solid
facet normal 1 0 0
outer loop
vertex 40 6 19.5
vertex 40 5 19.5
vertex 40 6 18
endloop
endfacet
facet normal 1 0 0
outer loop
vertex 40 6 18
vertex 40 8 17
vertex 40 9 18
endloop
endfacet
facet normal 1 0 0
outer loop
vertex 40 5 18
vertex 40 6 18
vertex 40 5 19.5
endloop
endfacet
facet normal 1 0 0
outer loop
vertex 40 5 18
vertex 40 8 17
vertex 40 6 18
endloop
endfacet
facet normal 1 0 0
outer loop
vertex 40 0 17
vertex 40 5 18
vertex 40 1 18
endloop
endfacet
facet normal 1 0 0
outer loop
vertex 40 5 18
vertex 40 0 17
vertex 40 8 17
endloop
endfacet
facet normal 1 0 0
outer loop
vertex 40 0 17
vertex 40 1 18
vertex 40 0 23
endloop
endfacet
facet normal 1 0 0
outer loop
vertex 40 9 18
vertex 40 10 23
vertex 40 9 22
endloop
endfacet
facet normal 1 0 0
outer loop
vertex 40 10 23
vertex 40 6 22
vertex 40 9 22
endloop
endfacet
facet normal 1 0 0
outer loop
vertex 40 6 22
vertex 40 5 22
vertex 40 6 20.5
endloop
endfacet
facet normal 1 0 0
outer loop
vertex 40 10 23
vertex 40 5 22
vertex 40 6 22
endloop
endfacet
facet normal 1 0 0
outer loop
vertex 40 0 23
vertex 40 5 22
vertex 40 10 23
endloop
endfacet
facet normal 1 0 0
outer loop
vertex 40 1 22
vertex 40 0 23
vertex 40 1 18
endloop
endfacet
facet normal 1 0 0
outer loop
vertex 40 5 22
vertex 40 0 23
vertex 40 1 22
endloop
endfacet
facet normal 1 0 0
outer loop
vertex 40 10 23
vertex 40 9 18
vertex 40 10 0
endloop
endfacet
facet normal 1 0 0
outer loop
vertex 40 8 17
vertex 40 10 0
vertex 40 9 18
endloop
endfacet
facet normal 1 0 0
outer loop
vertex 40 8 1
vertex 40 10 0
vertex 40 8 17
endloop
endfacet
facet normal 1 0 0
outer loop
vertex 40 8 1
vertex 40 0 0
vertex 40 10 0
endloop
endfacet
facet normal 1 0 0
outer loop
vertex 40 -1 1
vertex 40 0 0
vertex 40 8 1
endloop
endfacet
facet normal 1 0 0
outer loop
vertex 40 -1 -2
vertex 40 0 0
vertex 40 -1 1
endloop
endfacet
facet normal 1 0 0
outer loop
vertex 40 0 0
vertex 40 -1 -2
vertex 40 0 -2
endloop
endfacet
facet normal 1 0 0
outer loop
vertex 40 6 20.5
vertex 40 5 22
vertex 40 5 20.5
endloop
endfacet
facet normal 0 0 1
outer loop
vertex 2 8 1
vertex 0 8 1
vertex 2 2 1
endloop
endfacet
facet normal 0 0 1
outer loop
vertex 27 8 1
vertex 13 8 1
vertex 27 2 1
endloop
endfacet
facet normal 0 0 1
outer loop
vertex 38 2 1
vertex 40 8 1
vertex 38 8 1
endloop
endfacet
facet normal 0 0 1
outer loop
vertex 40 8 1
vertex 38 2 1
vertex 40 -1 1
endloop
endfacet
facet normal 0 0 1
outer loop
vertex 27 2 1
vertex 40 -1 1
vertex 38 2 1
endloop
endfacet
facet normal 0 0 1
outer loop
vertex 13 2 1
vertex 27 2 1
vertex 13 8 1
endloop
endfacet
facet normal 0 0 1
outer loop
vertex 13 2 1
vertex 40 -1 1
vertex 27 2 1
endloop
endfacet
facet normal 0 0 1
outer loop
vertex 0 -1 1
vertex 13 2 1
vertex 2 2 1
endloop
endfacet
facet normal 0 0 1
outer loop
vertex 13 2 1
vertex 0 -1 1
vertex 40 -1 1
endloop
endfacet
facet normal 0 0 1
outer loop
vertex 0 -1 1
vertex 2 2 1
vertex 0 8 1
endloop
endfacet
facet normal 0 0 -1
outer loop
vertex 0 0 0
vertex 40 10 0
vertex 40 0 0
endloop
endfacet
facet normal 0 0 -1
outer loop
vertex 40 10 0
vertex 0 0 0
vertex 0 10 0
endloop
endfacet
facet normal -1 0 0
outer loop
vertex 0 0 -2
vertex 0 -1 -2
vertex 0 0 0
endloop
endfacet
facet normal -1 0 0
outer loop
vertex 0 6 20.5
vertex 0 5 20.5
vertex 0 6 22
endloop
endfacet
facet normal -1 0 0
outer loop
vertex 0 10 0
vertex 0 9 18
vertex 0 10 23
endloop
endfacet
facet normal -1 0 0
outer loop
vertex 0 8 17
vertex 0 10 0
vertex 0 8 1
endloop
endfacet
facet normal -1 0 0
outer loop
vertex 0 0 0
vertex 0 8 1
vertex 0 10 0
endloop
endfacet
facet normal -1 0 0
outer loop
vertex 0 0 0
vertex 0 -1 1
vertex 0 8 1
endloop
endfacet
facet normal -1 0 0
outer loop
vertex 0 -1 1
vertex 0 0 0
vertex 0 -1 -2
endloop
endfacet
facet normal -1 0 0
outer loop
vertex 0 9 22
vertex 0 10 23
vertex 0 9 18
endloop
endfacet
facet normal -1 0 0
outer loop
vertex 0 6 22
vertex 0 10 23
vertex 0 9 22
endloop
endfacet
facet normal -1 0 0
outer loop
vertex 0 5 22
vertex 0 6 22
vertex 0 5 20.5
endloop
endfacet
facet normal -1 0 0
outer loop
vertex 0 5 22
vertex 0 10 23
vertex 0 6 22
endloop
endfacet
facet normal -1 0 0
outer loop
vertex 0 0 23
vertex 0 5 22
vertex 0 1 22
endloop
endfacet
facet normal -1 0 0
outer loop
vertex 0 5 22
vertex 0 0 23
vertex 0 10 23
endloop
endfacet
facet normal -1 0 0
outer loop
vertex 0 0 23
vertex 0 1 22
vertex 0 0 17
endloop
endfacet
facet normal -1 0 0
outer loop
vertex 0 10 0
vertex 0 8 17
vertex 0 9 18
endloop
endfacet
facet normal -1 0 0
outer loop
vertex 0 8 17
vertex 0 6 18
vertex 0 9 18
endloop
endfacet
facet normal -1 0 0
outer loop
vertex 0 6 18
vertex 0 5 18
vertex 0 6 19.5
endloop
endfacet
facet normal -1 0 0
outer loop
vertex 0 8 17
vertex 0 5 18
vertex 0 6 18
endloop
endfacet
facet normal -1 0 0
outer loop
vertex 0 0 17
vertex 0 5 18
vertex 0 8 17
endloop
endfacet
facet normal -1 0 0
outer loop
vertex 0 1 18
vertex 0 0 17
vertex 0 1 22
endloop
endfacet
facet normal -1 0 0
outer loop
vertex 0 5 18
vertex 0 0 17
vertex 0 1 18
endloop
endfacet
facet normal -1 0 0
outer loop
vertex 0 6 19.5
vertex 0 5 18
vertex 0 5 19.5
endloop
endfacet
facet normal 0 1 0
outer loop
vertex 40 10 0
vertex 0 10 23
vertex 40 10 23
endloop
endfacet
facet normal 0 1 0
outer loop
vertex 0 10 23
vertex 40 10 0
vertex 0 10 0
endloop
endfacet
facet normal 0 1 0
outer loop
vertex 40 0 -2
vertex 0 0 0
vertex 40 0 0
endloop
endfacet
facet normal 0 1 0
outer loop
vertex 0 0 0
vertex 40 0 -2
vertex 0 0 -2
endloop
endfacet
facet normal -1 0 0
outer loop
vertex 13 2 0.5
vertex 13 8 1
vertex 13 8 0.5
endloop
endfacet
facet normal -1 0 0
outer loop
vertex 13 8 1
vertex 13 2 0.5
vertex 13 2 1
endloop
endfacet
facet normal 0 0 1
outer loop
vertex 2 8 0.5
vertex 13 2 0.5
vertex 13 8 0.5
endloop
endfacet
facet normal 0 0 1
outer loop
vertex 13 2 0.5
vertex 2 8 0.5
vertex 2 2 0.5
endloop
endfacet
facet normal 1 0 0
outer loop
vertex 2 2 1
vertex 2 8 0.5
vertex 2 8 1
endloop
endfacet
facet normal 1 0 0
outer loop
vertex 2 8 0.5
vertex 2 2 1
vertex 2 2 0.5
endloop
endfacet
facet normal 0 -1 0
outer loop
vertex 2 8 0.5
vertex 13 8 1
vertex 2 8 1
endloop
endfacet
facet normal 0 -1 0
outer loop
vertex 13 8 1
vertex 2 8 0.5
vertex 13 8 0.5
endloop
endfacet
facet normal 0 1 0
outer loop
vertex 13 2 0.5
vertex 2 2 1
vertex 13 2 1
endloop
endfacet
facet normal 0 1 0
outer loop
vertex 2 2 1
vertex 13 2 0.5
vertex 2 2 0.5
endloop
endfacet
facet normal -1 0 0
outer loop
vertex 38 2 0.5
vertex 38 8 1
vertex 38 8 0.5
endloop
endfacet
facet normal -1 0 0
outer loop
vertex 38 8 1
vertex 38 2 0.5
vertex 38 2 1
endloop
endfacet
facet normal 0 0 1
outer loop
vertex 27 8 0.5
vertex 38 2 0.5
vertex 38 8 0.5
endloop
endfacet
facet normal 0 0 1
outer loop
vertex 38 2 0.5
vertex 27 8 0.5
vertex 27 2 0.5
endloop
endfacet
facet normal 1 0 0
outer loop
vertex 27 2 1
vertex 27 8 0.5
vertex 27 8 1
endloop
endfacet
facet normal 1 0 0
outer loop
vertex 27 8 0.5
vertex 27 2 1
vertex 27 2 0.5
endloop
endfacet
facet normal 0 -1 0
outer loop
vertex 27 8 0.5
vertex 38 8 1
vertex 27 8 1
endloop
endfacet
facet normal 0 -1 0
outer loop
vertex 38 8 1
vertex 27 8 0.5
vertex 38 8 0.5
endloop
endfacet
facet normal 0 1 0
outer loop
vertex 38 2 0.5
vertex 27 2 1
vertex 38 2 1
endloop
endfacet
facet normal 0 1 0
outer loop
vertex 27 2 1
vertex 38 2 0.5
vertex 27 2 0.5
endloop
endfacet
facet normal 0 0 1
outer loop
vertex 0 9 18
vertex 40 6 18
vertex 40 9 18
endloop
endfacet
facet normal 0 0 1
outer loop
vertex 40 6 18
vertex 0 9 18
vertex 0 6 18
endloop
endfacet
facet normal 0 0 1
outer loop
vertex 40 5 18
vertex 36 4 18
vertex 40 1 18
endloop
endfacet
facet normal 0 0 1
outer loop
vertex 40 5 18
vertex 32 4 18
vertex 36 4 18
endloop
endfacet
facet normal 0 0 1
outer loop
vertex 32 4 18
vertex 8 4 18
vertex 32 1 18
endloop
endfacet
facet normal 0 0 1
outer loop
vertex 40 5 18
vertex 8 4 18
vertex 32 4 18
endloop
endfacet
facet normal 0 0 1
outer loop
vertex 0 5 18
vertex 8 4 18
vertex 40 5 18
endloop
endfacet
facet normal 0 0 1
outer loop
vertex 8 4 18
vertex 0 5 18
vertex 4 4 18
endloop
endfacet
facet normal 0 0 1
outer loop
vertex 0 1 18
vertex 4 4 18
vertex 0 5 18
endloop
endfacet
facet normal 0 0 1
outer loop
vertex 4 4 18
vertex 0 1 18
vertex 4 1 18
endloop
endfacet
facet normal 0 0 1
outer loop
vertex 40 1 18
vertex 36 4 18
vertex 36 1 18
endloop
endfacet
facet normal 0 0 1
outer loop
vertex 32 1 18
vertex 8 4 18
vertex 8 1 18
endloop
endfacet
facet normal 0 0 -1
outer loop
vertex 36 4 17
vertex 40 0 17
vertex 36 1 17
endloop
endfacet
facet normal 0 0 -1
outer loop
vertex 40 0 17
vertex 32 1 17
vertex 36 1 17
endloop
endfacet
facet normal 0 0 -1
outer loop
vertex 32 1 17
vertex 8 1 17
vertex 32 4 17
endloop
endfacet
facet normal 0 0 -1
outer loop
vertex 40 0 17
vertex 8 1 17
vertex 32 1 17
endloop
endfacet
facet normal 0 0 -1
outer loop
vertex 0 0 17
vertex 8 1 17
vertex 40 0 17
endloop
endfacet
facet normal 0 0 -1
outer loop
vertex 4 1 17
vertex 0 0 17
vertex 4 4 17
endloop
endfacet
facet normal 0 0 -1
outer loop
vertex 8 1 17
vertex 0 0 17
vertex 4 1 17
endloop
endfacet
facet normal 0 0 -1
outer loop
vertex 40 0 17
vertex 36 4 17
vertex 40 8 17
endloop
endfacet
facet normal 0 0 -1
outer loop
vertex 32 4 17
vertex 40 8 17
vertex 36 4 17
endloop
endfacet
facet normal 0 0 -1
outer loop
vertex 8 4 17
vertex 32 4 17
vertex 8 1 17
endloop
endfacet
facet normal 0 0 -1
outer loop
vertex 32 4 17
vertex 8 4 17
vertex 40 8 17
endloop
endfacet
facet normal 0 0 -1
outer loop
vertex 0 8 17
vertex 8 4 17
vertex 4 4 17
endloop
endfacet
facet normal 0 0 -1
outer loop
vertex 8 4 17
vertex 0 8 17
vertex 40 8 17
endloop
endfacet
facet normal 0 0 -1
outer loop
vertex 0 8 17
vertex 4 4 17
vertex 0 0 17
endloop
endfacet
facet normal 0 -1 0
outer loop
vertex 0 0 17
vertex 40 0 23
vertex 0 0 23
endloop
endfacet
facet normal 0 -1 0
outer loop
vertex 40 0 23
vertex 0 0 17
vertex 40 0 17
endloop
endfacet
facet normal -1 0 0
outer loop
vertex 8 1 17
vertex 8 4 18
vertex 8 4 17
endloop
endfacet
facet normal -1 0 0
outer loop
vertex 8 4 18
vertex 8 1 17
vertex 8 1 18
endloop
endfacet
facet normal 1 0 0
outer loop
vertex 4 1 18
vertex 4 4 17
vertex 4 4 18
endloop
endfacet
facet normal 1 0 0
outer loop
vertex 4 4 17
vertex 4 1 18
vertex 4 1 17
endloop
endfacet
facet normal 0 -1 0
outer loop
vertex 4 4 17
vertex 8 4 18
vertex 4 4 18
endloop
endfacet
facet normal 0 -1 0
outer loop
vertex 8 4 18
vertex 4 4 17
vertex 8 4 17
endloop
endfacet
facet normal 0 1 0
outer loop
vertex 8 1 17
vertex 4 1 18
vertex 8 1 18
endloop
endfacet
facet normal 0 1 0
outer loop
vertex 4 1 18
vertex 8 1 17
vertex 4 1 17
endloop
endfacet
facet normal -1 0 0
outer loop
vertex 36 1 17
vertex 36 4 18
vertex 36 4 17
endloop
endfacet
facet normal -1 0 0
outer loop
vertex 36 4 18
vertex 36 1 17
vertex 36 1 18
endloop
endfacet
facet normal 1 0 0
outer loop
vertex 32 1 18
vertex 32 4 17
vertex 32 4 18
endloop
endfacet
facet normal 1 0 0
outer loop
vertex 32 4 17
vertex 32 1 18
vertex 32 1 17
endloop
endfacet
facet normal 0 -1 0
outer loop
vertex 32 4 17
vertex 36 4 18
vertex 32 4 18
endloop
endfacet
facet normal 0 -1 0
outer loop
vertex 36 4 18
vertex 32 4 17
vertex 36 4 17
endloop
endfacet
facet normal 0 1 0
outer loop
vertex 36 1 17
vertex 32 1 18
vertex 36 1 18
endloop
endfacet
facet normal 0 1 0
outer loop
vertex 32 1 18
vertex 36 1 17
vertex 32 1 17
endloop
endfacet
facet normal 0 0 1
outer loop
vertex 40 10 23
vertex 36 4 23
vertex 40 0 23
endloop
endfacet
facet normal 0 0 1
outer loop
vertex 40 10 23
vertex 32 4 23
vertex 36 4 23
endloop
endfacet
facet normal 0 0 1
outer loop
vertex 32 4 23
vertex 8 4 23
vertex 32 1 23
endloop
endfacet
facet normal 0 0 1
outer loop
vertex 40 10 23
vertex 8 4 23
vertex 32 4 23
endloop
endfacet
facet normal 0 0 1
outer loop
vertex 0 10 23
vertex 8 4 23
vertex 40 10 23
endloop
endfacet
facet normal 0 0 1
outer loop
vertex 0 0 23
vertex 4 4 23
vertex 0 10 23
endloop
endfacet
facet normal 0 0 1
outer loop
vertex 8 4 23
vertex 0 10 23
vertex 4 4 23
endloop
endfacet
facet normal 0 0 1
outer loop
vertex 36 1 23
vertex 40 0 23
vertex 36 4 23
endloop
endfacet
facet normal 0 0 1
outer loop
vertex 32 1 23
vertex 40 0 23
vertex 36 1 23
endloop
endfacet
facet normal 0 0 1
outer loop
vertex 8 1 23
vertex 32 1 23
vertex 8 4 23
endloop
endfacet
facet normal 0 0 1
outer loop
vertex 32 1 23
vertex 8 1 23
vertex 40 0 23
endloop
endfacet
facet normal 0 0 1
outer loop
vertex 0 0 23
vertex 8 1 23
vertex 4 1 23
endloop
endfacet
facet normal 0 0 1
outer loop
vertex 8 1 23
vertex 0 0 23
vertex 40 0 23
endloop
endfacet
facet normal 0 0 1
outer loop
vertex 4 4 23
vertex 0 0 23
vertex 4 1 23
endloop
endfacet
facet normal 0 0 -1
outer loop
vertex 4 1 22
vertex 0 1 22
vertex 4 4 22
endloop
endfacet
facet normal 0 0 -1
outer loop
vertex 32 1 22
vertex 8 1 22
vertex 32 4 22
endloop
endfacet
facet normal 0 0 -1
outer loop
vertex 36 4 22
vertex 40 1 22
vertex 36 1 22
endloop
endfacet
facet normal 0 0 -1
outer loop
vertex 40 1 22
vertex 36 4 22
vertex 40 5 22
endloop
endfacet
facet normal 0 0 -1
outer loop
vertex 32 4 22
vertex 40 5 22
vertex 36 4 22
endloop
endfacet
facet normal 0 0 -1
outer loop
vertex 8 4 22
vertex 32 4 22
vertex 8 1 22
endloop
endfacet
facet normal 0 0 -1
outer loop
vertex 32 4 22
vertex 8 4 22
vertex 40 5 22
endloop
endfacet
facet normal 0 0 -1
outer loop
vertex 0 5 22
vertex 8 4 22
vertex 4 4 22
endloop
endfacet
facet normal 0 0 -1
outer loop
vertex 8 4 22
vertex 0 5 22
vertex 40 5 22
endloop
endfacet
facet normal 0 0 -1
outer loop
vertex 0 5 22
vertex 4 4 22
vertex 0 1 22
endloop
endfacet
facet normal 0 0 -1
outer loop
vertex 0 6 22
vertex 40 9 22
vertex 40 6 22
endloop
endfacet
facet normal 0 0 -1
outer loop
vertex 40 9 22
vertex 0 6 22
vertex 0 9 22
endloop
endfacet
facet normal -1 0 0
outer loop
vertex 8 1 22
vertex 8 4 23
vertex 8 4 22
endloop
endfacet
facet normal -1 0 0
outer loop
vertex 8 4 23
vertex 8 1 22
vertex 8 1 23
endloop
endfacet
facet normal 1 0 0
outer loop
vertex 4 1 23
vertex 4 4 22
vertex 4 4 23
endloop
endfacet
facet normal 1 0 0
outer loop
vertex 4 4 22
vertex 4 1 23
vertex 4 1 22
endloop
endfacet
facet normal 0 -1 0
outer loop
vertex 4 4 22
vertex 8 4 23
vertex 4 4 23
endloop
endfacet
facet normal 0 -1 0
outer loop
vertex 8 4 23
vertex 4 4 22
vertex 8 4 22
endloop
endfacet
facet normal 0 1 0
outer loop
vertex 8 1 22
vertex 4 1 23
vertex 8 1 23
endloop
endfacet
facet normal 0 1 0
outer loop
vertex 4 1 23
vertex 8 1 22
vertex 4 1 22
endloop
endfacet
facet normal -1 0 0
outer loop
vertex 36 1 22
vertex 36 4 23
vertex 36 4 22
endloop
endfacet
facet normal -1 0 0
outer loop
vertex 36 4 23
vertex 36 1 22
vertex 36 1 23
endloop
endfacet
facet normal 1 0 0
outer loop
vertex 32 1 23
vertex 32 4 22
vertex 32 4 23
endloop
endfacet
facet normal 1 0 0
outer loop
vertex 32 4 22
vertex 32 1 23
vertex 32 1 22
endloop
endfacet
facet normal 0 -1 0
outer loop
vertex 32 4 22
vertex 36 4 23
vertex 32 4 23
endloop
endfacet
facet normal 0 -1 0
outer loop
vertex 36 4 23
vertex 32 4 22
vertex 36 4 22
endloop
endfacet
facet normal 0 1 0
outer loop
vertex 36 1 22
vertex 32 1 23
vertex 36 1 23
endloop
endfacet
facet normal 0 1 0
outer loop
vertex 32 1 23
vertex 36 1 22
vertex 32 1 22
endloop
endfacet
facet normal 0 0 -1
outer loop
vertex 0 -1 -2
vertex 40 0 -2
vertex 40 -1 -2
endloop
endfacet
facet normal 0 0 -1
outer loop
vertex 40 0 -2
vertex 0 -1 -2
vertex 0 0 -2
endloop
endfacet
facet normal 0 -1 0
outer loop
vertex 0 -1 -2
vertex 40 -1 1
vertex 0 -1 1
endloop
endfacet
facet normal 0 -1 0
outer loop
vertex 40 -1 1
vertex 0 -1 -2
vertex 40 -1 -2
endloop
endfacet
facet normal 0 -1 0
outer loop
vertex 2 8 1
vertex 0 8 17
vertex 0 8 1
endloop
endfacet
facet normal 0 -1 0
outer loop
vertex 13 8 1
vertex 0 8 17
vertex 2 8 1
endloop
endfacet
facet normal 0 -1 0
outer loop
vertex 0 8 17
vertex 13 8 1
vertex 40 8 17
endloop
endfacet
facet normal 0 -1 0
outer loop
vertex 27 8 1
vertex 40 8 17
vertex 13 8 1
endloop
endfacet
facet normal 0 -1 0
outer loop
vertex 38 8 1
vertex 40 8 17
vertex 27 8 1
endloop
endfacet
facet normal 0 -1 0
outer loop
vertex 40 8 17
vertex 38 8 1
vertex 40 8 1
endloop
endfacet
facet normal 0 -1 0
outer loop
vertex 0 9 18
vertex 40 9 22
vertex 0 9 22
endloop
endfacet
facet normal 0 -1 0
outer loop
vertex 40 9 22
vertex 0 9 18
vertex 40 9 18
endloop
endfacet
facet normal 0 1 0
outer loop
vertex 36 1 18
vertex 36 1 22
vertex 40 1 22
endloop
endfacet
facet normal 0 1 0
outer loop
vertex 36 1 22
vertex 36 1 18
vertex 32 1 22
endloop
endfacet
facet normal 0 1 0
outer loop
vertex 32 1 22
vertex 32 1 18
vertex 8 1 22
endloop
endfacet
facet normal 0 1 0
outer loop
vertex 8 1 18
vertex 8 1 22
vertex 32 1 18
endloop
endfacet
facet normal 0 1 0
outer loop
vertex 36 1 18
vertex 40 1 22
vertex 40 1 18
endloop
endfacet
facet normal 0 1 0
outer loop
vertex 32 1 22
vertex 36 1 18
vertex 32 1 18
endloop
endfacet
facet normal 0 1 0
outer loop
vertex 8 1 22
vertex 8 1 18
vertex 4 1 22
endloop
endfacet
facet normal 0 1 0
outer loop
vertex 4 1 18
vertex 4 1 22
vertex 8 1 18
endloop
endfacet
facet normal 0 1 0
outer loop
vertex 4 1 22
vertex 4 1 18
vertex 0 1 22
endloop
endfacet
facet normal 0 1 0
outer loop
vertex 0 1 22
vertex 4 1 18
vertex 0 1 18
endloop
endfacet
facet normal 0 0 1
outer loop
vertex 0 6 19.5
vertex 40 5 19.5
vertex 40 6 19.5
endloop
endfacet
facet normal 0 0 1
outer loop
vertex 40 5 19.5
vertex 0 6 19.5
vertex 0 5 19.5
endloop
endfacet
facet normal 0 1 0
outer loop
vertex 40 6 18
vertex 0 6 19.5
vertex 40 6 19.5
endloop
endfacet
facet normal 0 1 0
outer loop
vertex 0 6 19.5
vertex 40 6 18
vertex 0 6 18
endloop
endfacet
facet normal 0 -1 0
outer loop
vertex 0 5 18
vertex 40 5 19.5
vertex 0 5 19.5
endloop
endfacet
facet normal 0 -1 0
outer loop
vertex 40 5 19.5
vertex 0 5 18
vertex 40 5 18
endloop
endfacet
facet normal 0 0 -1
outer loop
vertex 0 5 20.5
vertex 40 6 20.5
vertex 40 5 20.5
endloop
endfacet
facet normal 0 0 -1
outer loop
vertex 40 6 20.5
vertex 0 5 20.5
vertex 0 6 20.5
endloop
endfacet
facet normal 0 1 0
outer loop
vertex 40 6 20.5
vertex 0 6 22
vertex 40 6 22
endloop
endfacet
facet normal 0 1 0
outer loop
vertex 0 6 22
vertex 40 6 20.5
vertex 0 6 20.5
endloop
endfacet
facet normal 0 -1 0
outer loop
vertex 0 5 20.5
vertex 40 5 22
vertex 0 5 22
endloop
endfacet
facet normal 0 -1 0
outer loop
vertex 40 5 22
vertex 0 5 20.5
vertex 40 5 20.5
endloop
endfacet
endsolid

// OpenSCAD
length = 40;
width = 10;
base_thickness = 1;
alignment_plate_thickness = 1;
alignment_plate_height = 2;

reed_switch_height_over_base = 20;

mount_inner_height = 4;
mount_plate_width = 10;
mount_plate_thickness = 1;
mount_contact_gap = 1;
mount_reed_casing_width = 4;
zip_tie_hole_width = 3;
zip_tie_hole_length = 4;
zip_tie_hole_offset = 4;
zip_tie_hole_width_offset1 = mount_plate_thickness;

spacer_width = 2;
spacer_height = reed_switch_height_over_base - base_thickness - mount_plate_thickness - mount_inner_height / 2;

base_magnet_length = 11;
base_magnet_width = 6;
base_magnet_hole_depth = 0.5;
base_magnet_hole_distance_to_wall = 2;


module zip_tie_hole() {
    translate([0, 0, -mount_plate_thickness / 2])
        cube([zip_tie_hole_length, zip_tie_hole_width, mount_plate_thickness * 2]);
}


// base plate
difference() {
    cube([length, width, base_thickness]);
    translate([base_magnet_hole_distance_to_wall, base_magnet_hole_distance_to_wall, base_thickness -
        base_magnet_hole_depth])
        cube([base_magnet_length, base_magnet_width, 2 * base_magnet_hole_depth]);
    translate([length - base_magnet_length - base_magnet_hole_distance_to_wall, base_magnet_hole_distance_to_wall,
            base_thickness - base_magnet_hole_depth])
        cube([base_magnet_length, base_magnet_width, 2 * base_magnet_hole_depth]);

}


// alignment plate
translate([0, -alignment_plate_thickness, -alignment_plate_height])
    cube([length, alignment_plate_thickness, alignment_plate_height + base_thickness]);
// spacer
translate([0, width - spacer_width, base_thickness])
    cube([length, spacer_width, spacer_height]);

// mount - lower plate
translate([0, width - mount_plate_width, base_thickness + spacer_height])
    difference() {
        cube([length, mount_plate_width, mount_plate_thickness]);
        // holes for zip ties
        translate([zip_tie_hole_offset, zip_tie_hole_width_offset1, 0])
            zip_tie_hole();
        translate([length - zip_tie_hole_offset - zip_tie_hole_length, zip_tie_hole_width_offset1, 0])
            zip_tie_hole();
    }
// mount - upper plate
translate([0, width - mount_plate_width, base_thickness + spacer_height + mount_plate_thickness + mount_inner_height])
difference() {
    cube([length, mount_plate_width, mount_plate_thickness]);
    // holes for zip ties
    translate([zip_tie_hole_offset, zip_tie_hole_width_offset1, 0])
        zip_tie_hole();
    translate([length - zip_tie_hole_offset - zip_tie_hole_length, zip_tie_hole_width_offset1, 0])
        zip_tie_hole();
}
translate([0, width - mount_plate_thickness, base_thickness + spacer_height + mount_plate_thickness])
    cube([length, mount_plate_thickness, mount_inner_height]);
translate([0, width - mount_plate_width, base_thickness + spacer_height + mount_plate_thickness])
    cube([length, mount_plate_thickness, mount_inner_height]);
// reed switch inner enclosure
reed_inner_wall_height = (mount_inner_height - mount_contact_gap) / 2;
translate([0, width - mount_reed_casing_width - mount_plate_thickness, base_thickness + spacer_height +
    mount_plate_thickness])
    cube([length, mount_plate_thickness, reed_inner_wall_height]);
translate([0, width - mount_reed_casing_width - mount_plate_thickness, base_thickness + spacer_height +
    mount_plate_thickness + reed_inner_wall_height + mount_contact_gap])
    cube([length, mount_plate_thickness, reed_inner_wall_height]);
